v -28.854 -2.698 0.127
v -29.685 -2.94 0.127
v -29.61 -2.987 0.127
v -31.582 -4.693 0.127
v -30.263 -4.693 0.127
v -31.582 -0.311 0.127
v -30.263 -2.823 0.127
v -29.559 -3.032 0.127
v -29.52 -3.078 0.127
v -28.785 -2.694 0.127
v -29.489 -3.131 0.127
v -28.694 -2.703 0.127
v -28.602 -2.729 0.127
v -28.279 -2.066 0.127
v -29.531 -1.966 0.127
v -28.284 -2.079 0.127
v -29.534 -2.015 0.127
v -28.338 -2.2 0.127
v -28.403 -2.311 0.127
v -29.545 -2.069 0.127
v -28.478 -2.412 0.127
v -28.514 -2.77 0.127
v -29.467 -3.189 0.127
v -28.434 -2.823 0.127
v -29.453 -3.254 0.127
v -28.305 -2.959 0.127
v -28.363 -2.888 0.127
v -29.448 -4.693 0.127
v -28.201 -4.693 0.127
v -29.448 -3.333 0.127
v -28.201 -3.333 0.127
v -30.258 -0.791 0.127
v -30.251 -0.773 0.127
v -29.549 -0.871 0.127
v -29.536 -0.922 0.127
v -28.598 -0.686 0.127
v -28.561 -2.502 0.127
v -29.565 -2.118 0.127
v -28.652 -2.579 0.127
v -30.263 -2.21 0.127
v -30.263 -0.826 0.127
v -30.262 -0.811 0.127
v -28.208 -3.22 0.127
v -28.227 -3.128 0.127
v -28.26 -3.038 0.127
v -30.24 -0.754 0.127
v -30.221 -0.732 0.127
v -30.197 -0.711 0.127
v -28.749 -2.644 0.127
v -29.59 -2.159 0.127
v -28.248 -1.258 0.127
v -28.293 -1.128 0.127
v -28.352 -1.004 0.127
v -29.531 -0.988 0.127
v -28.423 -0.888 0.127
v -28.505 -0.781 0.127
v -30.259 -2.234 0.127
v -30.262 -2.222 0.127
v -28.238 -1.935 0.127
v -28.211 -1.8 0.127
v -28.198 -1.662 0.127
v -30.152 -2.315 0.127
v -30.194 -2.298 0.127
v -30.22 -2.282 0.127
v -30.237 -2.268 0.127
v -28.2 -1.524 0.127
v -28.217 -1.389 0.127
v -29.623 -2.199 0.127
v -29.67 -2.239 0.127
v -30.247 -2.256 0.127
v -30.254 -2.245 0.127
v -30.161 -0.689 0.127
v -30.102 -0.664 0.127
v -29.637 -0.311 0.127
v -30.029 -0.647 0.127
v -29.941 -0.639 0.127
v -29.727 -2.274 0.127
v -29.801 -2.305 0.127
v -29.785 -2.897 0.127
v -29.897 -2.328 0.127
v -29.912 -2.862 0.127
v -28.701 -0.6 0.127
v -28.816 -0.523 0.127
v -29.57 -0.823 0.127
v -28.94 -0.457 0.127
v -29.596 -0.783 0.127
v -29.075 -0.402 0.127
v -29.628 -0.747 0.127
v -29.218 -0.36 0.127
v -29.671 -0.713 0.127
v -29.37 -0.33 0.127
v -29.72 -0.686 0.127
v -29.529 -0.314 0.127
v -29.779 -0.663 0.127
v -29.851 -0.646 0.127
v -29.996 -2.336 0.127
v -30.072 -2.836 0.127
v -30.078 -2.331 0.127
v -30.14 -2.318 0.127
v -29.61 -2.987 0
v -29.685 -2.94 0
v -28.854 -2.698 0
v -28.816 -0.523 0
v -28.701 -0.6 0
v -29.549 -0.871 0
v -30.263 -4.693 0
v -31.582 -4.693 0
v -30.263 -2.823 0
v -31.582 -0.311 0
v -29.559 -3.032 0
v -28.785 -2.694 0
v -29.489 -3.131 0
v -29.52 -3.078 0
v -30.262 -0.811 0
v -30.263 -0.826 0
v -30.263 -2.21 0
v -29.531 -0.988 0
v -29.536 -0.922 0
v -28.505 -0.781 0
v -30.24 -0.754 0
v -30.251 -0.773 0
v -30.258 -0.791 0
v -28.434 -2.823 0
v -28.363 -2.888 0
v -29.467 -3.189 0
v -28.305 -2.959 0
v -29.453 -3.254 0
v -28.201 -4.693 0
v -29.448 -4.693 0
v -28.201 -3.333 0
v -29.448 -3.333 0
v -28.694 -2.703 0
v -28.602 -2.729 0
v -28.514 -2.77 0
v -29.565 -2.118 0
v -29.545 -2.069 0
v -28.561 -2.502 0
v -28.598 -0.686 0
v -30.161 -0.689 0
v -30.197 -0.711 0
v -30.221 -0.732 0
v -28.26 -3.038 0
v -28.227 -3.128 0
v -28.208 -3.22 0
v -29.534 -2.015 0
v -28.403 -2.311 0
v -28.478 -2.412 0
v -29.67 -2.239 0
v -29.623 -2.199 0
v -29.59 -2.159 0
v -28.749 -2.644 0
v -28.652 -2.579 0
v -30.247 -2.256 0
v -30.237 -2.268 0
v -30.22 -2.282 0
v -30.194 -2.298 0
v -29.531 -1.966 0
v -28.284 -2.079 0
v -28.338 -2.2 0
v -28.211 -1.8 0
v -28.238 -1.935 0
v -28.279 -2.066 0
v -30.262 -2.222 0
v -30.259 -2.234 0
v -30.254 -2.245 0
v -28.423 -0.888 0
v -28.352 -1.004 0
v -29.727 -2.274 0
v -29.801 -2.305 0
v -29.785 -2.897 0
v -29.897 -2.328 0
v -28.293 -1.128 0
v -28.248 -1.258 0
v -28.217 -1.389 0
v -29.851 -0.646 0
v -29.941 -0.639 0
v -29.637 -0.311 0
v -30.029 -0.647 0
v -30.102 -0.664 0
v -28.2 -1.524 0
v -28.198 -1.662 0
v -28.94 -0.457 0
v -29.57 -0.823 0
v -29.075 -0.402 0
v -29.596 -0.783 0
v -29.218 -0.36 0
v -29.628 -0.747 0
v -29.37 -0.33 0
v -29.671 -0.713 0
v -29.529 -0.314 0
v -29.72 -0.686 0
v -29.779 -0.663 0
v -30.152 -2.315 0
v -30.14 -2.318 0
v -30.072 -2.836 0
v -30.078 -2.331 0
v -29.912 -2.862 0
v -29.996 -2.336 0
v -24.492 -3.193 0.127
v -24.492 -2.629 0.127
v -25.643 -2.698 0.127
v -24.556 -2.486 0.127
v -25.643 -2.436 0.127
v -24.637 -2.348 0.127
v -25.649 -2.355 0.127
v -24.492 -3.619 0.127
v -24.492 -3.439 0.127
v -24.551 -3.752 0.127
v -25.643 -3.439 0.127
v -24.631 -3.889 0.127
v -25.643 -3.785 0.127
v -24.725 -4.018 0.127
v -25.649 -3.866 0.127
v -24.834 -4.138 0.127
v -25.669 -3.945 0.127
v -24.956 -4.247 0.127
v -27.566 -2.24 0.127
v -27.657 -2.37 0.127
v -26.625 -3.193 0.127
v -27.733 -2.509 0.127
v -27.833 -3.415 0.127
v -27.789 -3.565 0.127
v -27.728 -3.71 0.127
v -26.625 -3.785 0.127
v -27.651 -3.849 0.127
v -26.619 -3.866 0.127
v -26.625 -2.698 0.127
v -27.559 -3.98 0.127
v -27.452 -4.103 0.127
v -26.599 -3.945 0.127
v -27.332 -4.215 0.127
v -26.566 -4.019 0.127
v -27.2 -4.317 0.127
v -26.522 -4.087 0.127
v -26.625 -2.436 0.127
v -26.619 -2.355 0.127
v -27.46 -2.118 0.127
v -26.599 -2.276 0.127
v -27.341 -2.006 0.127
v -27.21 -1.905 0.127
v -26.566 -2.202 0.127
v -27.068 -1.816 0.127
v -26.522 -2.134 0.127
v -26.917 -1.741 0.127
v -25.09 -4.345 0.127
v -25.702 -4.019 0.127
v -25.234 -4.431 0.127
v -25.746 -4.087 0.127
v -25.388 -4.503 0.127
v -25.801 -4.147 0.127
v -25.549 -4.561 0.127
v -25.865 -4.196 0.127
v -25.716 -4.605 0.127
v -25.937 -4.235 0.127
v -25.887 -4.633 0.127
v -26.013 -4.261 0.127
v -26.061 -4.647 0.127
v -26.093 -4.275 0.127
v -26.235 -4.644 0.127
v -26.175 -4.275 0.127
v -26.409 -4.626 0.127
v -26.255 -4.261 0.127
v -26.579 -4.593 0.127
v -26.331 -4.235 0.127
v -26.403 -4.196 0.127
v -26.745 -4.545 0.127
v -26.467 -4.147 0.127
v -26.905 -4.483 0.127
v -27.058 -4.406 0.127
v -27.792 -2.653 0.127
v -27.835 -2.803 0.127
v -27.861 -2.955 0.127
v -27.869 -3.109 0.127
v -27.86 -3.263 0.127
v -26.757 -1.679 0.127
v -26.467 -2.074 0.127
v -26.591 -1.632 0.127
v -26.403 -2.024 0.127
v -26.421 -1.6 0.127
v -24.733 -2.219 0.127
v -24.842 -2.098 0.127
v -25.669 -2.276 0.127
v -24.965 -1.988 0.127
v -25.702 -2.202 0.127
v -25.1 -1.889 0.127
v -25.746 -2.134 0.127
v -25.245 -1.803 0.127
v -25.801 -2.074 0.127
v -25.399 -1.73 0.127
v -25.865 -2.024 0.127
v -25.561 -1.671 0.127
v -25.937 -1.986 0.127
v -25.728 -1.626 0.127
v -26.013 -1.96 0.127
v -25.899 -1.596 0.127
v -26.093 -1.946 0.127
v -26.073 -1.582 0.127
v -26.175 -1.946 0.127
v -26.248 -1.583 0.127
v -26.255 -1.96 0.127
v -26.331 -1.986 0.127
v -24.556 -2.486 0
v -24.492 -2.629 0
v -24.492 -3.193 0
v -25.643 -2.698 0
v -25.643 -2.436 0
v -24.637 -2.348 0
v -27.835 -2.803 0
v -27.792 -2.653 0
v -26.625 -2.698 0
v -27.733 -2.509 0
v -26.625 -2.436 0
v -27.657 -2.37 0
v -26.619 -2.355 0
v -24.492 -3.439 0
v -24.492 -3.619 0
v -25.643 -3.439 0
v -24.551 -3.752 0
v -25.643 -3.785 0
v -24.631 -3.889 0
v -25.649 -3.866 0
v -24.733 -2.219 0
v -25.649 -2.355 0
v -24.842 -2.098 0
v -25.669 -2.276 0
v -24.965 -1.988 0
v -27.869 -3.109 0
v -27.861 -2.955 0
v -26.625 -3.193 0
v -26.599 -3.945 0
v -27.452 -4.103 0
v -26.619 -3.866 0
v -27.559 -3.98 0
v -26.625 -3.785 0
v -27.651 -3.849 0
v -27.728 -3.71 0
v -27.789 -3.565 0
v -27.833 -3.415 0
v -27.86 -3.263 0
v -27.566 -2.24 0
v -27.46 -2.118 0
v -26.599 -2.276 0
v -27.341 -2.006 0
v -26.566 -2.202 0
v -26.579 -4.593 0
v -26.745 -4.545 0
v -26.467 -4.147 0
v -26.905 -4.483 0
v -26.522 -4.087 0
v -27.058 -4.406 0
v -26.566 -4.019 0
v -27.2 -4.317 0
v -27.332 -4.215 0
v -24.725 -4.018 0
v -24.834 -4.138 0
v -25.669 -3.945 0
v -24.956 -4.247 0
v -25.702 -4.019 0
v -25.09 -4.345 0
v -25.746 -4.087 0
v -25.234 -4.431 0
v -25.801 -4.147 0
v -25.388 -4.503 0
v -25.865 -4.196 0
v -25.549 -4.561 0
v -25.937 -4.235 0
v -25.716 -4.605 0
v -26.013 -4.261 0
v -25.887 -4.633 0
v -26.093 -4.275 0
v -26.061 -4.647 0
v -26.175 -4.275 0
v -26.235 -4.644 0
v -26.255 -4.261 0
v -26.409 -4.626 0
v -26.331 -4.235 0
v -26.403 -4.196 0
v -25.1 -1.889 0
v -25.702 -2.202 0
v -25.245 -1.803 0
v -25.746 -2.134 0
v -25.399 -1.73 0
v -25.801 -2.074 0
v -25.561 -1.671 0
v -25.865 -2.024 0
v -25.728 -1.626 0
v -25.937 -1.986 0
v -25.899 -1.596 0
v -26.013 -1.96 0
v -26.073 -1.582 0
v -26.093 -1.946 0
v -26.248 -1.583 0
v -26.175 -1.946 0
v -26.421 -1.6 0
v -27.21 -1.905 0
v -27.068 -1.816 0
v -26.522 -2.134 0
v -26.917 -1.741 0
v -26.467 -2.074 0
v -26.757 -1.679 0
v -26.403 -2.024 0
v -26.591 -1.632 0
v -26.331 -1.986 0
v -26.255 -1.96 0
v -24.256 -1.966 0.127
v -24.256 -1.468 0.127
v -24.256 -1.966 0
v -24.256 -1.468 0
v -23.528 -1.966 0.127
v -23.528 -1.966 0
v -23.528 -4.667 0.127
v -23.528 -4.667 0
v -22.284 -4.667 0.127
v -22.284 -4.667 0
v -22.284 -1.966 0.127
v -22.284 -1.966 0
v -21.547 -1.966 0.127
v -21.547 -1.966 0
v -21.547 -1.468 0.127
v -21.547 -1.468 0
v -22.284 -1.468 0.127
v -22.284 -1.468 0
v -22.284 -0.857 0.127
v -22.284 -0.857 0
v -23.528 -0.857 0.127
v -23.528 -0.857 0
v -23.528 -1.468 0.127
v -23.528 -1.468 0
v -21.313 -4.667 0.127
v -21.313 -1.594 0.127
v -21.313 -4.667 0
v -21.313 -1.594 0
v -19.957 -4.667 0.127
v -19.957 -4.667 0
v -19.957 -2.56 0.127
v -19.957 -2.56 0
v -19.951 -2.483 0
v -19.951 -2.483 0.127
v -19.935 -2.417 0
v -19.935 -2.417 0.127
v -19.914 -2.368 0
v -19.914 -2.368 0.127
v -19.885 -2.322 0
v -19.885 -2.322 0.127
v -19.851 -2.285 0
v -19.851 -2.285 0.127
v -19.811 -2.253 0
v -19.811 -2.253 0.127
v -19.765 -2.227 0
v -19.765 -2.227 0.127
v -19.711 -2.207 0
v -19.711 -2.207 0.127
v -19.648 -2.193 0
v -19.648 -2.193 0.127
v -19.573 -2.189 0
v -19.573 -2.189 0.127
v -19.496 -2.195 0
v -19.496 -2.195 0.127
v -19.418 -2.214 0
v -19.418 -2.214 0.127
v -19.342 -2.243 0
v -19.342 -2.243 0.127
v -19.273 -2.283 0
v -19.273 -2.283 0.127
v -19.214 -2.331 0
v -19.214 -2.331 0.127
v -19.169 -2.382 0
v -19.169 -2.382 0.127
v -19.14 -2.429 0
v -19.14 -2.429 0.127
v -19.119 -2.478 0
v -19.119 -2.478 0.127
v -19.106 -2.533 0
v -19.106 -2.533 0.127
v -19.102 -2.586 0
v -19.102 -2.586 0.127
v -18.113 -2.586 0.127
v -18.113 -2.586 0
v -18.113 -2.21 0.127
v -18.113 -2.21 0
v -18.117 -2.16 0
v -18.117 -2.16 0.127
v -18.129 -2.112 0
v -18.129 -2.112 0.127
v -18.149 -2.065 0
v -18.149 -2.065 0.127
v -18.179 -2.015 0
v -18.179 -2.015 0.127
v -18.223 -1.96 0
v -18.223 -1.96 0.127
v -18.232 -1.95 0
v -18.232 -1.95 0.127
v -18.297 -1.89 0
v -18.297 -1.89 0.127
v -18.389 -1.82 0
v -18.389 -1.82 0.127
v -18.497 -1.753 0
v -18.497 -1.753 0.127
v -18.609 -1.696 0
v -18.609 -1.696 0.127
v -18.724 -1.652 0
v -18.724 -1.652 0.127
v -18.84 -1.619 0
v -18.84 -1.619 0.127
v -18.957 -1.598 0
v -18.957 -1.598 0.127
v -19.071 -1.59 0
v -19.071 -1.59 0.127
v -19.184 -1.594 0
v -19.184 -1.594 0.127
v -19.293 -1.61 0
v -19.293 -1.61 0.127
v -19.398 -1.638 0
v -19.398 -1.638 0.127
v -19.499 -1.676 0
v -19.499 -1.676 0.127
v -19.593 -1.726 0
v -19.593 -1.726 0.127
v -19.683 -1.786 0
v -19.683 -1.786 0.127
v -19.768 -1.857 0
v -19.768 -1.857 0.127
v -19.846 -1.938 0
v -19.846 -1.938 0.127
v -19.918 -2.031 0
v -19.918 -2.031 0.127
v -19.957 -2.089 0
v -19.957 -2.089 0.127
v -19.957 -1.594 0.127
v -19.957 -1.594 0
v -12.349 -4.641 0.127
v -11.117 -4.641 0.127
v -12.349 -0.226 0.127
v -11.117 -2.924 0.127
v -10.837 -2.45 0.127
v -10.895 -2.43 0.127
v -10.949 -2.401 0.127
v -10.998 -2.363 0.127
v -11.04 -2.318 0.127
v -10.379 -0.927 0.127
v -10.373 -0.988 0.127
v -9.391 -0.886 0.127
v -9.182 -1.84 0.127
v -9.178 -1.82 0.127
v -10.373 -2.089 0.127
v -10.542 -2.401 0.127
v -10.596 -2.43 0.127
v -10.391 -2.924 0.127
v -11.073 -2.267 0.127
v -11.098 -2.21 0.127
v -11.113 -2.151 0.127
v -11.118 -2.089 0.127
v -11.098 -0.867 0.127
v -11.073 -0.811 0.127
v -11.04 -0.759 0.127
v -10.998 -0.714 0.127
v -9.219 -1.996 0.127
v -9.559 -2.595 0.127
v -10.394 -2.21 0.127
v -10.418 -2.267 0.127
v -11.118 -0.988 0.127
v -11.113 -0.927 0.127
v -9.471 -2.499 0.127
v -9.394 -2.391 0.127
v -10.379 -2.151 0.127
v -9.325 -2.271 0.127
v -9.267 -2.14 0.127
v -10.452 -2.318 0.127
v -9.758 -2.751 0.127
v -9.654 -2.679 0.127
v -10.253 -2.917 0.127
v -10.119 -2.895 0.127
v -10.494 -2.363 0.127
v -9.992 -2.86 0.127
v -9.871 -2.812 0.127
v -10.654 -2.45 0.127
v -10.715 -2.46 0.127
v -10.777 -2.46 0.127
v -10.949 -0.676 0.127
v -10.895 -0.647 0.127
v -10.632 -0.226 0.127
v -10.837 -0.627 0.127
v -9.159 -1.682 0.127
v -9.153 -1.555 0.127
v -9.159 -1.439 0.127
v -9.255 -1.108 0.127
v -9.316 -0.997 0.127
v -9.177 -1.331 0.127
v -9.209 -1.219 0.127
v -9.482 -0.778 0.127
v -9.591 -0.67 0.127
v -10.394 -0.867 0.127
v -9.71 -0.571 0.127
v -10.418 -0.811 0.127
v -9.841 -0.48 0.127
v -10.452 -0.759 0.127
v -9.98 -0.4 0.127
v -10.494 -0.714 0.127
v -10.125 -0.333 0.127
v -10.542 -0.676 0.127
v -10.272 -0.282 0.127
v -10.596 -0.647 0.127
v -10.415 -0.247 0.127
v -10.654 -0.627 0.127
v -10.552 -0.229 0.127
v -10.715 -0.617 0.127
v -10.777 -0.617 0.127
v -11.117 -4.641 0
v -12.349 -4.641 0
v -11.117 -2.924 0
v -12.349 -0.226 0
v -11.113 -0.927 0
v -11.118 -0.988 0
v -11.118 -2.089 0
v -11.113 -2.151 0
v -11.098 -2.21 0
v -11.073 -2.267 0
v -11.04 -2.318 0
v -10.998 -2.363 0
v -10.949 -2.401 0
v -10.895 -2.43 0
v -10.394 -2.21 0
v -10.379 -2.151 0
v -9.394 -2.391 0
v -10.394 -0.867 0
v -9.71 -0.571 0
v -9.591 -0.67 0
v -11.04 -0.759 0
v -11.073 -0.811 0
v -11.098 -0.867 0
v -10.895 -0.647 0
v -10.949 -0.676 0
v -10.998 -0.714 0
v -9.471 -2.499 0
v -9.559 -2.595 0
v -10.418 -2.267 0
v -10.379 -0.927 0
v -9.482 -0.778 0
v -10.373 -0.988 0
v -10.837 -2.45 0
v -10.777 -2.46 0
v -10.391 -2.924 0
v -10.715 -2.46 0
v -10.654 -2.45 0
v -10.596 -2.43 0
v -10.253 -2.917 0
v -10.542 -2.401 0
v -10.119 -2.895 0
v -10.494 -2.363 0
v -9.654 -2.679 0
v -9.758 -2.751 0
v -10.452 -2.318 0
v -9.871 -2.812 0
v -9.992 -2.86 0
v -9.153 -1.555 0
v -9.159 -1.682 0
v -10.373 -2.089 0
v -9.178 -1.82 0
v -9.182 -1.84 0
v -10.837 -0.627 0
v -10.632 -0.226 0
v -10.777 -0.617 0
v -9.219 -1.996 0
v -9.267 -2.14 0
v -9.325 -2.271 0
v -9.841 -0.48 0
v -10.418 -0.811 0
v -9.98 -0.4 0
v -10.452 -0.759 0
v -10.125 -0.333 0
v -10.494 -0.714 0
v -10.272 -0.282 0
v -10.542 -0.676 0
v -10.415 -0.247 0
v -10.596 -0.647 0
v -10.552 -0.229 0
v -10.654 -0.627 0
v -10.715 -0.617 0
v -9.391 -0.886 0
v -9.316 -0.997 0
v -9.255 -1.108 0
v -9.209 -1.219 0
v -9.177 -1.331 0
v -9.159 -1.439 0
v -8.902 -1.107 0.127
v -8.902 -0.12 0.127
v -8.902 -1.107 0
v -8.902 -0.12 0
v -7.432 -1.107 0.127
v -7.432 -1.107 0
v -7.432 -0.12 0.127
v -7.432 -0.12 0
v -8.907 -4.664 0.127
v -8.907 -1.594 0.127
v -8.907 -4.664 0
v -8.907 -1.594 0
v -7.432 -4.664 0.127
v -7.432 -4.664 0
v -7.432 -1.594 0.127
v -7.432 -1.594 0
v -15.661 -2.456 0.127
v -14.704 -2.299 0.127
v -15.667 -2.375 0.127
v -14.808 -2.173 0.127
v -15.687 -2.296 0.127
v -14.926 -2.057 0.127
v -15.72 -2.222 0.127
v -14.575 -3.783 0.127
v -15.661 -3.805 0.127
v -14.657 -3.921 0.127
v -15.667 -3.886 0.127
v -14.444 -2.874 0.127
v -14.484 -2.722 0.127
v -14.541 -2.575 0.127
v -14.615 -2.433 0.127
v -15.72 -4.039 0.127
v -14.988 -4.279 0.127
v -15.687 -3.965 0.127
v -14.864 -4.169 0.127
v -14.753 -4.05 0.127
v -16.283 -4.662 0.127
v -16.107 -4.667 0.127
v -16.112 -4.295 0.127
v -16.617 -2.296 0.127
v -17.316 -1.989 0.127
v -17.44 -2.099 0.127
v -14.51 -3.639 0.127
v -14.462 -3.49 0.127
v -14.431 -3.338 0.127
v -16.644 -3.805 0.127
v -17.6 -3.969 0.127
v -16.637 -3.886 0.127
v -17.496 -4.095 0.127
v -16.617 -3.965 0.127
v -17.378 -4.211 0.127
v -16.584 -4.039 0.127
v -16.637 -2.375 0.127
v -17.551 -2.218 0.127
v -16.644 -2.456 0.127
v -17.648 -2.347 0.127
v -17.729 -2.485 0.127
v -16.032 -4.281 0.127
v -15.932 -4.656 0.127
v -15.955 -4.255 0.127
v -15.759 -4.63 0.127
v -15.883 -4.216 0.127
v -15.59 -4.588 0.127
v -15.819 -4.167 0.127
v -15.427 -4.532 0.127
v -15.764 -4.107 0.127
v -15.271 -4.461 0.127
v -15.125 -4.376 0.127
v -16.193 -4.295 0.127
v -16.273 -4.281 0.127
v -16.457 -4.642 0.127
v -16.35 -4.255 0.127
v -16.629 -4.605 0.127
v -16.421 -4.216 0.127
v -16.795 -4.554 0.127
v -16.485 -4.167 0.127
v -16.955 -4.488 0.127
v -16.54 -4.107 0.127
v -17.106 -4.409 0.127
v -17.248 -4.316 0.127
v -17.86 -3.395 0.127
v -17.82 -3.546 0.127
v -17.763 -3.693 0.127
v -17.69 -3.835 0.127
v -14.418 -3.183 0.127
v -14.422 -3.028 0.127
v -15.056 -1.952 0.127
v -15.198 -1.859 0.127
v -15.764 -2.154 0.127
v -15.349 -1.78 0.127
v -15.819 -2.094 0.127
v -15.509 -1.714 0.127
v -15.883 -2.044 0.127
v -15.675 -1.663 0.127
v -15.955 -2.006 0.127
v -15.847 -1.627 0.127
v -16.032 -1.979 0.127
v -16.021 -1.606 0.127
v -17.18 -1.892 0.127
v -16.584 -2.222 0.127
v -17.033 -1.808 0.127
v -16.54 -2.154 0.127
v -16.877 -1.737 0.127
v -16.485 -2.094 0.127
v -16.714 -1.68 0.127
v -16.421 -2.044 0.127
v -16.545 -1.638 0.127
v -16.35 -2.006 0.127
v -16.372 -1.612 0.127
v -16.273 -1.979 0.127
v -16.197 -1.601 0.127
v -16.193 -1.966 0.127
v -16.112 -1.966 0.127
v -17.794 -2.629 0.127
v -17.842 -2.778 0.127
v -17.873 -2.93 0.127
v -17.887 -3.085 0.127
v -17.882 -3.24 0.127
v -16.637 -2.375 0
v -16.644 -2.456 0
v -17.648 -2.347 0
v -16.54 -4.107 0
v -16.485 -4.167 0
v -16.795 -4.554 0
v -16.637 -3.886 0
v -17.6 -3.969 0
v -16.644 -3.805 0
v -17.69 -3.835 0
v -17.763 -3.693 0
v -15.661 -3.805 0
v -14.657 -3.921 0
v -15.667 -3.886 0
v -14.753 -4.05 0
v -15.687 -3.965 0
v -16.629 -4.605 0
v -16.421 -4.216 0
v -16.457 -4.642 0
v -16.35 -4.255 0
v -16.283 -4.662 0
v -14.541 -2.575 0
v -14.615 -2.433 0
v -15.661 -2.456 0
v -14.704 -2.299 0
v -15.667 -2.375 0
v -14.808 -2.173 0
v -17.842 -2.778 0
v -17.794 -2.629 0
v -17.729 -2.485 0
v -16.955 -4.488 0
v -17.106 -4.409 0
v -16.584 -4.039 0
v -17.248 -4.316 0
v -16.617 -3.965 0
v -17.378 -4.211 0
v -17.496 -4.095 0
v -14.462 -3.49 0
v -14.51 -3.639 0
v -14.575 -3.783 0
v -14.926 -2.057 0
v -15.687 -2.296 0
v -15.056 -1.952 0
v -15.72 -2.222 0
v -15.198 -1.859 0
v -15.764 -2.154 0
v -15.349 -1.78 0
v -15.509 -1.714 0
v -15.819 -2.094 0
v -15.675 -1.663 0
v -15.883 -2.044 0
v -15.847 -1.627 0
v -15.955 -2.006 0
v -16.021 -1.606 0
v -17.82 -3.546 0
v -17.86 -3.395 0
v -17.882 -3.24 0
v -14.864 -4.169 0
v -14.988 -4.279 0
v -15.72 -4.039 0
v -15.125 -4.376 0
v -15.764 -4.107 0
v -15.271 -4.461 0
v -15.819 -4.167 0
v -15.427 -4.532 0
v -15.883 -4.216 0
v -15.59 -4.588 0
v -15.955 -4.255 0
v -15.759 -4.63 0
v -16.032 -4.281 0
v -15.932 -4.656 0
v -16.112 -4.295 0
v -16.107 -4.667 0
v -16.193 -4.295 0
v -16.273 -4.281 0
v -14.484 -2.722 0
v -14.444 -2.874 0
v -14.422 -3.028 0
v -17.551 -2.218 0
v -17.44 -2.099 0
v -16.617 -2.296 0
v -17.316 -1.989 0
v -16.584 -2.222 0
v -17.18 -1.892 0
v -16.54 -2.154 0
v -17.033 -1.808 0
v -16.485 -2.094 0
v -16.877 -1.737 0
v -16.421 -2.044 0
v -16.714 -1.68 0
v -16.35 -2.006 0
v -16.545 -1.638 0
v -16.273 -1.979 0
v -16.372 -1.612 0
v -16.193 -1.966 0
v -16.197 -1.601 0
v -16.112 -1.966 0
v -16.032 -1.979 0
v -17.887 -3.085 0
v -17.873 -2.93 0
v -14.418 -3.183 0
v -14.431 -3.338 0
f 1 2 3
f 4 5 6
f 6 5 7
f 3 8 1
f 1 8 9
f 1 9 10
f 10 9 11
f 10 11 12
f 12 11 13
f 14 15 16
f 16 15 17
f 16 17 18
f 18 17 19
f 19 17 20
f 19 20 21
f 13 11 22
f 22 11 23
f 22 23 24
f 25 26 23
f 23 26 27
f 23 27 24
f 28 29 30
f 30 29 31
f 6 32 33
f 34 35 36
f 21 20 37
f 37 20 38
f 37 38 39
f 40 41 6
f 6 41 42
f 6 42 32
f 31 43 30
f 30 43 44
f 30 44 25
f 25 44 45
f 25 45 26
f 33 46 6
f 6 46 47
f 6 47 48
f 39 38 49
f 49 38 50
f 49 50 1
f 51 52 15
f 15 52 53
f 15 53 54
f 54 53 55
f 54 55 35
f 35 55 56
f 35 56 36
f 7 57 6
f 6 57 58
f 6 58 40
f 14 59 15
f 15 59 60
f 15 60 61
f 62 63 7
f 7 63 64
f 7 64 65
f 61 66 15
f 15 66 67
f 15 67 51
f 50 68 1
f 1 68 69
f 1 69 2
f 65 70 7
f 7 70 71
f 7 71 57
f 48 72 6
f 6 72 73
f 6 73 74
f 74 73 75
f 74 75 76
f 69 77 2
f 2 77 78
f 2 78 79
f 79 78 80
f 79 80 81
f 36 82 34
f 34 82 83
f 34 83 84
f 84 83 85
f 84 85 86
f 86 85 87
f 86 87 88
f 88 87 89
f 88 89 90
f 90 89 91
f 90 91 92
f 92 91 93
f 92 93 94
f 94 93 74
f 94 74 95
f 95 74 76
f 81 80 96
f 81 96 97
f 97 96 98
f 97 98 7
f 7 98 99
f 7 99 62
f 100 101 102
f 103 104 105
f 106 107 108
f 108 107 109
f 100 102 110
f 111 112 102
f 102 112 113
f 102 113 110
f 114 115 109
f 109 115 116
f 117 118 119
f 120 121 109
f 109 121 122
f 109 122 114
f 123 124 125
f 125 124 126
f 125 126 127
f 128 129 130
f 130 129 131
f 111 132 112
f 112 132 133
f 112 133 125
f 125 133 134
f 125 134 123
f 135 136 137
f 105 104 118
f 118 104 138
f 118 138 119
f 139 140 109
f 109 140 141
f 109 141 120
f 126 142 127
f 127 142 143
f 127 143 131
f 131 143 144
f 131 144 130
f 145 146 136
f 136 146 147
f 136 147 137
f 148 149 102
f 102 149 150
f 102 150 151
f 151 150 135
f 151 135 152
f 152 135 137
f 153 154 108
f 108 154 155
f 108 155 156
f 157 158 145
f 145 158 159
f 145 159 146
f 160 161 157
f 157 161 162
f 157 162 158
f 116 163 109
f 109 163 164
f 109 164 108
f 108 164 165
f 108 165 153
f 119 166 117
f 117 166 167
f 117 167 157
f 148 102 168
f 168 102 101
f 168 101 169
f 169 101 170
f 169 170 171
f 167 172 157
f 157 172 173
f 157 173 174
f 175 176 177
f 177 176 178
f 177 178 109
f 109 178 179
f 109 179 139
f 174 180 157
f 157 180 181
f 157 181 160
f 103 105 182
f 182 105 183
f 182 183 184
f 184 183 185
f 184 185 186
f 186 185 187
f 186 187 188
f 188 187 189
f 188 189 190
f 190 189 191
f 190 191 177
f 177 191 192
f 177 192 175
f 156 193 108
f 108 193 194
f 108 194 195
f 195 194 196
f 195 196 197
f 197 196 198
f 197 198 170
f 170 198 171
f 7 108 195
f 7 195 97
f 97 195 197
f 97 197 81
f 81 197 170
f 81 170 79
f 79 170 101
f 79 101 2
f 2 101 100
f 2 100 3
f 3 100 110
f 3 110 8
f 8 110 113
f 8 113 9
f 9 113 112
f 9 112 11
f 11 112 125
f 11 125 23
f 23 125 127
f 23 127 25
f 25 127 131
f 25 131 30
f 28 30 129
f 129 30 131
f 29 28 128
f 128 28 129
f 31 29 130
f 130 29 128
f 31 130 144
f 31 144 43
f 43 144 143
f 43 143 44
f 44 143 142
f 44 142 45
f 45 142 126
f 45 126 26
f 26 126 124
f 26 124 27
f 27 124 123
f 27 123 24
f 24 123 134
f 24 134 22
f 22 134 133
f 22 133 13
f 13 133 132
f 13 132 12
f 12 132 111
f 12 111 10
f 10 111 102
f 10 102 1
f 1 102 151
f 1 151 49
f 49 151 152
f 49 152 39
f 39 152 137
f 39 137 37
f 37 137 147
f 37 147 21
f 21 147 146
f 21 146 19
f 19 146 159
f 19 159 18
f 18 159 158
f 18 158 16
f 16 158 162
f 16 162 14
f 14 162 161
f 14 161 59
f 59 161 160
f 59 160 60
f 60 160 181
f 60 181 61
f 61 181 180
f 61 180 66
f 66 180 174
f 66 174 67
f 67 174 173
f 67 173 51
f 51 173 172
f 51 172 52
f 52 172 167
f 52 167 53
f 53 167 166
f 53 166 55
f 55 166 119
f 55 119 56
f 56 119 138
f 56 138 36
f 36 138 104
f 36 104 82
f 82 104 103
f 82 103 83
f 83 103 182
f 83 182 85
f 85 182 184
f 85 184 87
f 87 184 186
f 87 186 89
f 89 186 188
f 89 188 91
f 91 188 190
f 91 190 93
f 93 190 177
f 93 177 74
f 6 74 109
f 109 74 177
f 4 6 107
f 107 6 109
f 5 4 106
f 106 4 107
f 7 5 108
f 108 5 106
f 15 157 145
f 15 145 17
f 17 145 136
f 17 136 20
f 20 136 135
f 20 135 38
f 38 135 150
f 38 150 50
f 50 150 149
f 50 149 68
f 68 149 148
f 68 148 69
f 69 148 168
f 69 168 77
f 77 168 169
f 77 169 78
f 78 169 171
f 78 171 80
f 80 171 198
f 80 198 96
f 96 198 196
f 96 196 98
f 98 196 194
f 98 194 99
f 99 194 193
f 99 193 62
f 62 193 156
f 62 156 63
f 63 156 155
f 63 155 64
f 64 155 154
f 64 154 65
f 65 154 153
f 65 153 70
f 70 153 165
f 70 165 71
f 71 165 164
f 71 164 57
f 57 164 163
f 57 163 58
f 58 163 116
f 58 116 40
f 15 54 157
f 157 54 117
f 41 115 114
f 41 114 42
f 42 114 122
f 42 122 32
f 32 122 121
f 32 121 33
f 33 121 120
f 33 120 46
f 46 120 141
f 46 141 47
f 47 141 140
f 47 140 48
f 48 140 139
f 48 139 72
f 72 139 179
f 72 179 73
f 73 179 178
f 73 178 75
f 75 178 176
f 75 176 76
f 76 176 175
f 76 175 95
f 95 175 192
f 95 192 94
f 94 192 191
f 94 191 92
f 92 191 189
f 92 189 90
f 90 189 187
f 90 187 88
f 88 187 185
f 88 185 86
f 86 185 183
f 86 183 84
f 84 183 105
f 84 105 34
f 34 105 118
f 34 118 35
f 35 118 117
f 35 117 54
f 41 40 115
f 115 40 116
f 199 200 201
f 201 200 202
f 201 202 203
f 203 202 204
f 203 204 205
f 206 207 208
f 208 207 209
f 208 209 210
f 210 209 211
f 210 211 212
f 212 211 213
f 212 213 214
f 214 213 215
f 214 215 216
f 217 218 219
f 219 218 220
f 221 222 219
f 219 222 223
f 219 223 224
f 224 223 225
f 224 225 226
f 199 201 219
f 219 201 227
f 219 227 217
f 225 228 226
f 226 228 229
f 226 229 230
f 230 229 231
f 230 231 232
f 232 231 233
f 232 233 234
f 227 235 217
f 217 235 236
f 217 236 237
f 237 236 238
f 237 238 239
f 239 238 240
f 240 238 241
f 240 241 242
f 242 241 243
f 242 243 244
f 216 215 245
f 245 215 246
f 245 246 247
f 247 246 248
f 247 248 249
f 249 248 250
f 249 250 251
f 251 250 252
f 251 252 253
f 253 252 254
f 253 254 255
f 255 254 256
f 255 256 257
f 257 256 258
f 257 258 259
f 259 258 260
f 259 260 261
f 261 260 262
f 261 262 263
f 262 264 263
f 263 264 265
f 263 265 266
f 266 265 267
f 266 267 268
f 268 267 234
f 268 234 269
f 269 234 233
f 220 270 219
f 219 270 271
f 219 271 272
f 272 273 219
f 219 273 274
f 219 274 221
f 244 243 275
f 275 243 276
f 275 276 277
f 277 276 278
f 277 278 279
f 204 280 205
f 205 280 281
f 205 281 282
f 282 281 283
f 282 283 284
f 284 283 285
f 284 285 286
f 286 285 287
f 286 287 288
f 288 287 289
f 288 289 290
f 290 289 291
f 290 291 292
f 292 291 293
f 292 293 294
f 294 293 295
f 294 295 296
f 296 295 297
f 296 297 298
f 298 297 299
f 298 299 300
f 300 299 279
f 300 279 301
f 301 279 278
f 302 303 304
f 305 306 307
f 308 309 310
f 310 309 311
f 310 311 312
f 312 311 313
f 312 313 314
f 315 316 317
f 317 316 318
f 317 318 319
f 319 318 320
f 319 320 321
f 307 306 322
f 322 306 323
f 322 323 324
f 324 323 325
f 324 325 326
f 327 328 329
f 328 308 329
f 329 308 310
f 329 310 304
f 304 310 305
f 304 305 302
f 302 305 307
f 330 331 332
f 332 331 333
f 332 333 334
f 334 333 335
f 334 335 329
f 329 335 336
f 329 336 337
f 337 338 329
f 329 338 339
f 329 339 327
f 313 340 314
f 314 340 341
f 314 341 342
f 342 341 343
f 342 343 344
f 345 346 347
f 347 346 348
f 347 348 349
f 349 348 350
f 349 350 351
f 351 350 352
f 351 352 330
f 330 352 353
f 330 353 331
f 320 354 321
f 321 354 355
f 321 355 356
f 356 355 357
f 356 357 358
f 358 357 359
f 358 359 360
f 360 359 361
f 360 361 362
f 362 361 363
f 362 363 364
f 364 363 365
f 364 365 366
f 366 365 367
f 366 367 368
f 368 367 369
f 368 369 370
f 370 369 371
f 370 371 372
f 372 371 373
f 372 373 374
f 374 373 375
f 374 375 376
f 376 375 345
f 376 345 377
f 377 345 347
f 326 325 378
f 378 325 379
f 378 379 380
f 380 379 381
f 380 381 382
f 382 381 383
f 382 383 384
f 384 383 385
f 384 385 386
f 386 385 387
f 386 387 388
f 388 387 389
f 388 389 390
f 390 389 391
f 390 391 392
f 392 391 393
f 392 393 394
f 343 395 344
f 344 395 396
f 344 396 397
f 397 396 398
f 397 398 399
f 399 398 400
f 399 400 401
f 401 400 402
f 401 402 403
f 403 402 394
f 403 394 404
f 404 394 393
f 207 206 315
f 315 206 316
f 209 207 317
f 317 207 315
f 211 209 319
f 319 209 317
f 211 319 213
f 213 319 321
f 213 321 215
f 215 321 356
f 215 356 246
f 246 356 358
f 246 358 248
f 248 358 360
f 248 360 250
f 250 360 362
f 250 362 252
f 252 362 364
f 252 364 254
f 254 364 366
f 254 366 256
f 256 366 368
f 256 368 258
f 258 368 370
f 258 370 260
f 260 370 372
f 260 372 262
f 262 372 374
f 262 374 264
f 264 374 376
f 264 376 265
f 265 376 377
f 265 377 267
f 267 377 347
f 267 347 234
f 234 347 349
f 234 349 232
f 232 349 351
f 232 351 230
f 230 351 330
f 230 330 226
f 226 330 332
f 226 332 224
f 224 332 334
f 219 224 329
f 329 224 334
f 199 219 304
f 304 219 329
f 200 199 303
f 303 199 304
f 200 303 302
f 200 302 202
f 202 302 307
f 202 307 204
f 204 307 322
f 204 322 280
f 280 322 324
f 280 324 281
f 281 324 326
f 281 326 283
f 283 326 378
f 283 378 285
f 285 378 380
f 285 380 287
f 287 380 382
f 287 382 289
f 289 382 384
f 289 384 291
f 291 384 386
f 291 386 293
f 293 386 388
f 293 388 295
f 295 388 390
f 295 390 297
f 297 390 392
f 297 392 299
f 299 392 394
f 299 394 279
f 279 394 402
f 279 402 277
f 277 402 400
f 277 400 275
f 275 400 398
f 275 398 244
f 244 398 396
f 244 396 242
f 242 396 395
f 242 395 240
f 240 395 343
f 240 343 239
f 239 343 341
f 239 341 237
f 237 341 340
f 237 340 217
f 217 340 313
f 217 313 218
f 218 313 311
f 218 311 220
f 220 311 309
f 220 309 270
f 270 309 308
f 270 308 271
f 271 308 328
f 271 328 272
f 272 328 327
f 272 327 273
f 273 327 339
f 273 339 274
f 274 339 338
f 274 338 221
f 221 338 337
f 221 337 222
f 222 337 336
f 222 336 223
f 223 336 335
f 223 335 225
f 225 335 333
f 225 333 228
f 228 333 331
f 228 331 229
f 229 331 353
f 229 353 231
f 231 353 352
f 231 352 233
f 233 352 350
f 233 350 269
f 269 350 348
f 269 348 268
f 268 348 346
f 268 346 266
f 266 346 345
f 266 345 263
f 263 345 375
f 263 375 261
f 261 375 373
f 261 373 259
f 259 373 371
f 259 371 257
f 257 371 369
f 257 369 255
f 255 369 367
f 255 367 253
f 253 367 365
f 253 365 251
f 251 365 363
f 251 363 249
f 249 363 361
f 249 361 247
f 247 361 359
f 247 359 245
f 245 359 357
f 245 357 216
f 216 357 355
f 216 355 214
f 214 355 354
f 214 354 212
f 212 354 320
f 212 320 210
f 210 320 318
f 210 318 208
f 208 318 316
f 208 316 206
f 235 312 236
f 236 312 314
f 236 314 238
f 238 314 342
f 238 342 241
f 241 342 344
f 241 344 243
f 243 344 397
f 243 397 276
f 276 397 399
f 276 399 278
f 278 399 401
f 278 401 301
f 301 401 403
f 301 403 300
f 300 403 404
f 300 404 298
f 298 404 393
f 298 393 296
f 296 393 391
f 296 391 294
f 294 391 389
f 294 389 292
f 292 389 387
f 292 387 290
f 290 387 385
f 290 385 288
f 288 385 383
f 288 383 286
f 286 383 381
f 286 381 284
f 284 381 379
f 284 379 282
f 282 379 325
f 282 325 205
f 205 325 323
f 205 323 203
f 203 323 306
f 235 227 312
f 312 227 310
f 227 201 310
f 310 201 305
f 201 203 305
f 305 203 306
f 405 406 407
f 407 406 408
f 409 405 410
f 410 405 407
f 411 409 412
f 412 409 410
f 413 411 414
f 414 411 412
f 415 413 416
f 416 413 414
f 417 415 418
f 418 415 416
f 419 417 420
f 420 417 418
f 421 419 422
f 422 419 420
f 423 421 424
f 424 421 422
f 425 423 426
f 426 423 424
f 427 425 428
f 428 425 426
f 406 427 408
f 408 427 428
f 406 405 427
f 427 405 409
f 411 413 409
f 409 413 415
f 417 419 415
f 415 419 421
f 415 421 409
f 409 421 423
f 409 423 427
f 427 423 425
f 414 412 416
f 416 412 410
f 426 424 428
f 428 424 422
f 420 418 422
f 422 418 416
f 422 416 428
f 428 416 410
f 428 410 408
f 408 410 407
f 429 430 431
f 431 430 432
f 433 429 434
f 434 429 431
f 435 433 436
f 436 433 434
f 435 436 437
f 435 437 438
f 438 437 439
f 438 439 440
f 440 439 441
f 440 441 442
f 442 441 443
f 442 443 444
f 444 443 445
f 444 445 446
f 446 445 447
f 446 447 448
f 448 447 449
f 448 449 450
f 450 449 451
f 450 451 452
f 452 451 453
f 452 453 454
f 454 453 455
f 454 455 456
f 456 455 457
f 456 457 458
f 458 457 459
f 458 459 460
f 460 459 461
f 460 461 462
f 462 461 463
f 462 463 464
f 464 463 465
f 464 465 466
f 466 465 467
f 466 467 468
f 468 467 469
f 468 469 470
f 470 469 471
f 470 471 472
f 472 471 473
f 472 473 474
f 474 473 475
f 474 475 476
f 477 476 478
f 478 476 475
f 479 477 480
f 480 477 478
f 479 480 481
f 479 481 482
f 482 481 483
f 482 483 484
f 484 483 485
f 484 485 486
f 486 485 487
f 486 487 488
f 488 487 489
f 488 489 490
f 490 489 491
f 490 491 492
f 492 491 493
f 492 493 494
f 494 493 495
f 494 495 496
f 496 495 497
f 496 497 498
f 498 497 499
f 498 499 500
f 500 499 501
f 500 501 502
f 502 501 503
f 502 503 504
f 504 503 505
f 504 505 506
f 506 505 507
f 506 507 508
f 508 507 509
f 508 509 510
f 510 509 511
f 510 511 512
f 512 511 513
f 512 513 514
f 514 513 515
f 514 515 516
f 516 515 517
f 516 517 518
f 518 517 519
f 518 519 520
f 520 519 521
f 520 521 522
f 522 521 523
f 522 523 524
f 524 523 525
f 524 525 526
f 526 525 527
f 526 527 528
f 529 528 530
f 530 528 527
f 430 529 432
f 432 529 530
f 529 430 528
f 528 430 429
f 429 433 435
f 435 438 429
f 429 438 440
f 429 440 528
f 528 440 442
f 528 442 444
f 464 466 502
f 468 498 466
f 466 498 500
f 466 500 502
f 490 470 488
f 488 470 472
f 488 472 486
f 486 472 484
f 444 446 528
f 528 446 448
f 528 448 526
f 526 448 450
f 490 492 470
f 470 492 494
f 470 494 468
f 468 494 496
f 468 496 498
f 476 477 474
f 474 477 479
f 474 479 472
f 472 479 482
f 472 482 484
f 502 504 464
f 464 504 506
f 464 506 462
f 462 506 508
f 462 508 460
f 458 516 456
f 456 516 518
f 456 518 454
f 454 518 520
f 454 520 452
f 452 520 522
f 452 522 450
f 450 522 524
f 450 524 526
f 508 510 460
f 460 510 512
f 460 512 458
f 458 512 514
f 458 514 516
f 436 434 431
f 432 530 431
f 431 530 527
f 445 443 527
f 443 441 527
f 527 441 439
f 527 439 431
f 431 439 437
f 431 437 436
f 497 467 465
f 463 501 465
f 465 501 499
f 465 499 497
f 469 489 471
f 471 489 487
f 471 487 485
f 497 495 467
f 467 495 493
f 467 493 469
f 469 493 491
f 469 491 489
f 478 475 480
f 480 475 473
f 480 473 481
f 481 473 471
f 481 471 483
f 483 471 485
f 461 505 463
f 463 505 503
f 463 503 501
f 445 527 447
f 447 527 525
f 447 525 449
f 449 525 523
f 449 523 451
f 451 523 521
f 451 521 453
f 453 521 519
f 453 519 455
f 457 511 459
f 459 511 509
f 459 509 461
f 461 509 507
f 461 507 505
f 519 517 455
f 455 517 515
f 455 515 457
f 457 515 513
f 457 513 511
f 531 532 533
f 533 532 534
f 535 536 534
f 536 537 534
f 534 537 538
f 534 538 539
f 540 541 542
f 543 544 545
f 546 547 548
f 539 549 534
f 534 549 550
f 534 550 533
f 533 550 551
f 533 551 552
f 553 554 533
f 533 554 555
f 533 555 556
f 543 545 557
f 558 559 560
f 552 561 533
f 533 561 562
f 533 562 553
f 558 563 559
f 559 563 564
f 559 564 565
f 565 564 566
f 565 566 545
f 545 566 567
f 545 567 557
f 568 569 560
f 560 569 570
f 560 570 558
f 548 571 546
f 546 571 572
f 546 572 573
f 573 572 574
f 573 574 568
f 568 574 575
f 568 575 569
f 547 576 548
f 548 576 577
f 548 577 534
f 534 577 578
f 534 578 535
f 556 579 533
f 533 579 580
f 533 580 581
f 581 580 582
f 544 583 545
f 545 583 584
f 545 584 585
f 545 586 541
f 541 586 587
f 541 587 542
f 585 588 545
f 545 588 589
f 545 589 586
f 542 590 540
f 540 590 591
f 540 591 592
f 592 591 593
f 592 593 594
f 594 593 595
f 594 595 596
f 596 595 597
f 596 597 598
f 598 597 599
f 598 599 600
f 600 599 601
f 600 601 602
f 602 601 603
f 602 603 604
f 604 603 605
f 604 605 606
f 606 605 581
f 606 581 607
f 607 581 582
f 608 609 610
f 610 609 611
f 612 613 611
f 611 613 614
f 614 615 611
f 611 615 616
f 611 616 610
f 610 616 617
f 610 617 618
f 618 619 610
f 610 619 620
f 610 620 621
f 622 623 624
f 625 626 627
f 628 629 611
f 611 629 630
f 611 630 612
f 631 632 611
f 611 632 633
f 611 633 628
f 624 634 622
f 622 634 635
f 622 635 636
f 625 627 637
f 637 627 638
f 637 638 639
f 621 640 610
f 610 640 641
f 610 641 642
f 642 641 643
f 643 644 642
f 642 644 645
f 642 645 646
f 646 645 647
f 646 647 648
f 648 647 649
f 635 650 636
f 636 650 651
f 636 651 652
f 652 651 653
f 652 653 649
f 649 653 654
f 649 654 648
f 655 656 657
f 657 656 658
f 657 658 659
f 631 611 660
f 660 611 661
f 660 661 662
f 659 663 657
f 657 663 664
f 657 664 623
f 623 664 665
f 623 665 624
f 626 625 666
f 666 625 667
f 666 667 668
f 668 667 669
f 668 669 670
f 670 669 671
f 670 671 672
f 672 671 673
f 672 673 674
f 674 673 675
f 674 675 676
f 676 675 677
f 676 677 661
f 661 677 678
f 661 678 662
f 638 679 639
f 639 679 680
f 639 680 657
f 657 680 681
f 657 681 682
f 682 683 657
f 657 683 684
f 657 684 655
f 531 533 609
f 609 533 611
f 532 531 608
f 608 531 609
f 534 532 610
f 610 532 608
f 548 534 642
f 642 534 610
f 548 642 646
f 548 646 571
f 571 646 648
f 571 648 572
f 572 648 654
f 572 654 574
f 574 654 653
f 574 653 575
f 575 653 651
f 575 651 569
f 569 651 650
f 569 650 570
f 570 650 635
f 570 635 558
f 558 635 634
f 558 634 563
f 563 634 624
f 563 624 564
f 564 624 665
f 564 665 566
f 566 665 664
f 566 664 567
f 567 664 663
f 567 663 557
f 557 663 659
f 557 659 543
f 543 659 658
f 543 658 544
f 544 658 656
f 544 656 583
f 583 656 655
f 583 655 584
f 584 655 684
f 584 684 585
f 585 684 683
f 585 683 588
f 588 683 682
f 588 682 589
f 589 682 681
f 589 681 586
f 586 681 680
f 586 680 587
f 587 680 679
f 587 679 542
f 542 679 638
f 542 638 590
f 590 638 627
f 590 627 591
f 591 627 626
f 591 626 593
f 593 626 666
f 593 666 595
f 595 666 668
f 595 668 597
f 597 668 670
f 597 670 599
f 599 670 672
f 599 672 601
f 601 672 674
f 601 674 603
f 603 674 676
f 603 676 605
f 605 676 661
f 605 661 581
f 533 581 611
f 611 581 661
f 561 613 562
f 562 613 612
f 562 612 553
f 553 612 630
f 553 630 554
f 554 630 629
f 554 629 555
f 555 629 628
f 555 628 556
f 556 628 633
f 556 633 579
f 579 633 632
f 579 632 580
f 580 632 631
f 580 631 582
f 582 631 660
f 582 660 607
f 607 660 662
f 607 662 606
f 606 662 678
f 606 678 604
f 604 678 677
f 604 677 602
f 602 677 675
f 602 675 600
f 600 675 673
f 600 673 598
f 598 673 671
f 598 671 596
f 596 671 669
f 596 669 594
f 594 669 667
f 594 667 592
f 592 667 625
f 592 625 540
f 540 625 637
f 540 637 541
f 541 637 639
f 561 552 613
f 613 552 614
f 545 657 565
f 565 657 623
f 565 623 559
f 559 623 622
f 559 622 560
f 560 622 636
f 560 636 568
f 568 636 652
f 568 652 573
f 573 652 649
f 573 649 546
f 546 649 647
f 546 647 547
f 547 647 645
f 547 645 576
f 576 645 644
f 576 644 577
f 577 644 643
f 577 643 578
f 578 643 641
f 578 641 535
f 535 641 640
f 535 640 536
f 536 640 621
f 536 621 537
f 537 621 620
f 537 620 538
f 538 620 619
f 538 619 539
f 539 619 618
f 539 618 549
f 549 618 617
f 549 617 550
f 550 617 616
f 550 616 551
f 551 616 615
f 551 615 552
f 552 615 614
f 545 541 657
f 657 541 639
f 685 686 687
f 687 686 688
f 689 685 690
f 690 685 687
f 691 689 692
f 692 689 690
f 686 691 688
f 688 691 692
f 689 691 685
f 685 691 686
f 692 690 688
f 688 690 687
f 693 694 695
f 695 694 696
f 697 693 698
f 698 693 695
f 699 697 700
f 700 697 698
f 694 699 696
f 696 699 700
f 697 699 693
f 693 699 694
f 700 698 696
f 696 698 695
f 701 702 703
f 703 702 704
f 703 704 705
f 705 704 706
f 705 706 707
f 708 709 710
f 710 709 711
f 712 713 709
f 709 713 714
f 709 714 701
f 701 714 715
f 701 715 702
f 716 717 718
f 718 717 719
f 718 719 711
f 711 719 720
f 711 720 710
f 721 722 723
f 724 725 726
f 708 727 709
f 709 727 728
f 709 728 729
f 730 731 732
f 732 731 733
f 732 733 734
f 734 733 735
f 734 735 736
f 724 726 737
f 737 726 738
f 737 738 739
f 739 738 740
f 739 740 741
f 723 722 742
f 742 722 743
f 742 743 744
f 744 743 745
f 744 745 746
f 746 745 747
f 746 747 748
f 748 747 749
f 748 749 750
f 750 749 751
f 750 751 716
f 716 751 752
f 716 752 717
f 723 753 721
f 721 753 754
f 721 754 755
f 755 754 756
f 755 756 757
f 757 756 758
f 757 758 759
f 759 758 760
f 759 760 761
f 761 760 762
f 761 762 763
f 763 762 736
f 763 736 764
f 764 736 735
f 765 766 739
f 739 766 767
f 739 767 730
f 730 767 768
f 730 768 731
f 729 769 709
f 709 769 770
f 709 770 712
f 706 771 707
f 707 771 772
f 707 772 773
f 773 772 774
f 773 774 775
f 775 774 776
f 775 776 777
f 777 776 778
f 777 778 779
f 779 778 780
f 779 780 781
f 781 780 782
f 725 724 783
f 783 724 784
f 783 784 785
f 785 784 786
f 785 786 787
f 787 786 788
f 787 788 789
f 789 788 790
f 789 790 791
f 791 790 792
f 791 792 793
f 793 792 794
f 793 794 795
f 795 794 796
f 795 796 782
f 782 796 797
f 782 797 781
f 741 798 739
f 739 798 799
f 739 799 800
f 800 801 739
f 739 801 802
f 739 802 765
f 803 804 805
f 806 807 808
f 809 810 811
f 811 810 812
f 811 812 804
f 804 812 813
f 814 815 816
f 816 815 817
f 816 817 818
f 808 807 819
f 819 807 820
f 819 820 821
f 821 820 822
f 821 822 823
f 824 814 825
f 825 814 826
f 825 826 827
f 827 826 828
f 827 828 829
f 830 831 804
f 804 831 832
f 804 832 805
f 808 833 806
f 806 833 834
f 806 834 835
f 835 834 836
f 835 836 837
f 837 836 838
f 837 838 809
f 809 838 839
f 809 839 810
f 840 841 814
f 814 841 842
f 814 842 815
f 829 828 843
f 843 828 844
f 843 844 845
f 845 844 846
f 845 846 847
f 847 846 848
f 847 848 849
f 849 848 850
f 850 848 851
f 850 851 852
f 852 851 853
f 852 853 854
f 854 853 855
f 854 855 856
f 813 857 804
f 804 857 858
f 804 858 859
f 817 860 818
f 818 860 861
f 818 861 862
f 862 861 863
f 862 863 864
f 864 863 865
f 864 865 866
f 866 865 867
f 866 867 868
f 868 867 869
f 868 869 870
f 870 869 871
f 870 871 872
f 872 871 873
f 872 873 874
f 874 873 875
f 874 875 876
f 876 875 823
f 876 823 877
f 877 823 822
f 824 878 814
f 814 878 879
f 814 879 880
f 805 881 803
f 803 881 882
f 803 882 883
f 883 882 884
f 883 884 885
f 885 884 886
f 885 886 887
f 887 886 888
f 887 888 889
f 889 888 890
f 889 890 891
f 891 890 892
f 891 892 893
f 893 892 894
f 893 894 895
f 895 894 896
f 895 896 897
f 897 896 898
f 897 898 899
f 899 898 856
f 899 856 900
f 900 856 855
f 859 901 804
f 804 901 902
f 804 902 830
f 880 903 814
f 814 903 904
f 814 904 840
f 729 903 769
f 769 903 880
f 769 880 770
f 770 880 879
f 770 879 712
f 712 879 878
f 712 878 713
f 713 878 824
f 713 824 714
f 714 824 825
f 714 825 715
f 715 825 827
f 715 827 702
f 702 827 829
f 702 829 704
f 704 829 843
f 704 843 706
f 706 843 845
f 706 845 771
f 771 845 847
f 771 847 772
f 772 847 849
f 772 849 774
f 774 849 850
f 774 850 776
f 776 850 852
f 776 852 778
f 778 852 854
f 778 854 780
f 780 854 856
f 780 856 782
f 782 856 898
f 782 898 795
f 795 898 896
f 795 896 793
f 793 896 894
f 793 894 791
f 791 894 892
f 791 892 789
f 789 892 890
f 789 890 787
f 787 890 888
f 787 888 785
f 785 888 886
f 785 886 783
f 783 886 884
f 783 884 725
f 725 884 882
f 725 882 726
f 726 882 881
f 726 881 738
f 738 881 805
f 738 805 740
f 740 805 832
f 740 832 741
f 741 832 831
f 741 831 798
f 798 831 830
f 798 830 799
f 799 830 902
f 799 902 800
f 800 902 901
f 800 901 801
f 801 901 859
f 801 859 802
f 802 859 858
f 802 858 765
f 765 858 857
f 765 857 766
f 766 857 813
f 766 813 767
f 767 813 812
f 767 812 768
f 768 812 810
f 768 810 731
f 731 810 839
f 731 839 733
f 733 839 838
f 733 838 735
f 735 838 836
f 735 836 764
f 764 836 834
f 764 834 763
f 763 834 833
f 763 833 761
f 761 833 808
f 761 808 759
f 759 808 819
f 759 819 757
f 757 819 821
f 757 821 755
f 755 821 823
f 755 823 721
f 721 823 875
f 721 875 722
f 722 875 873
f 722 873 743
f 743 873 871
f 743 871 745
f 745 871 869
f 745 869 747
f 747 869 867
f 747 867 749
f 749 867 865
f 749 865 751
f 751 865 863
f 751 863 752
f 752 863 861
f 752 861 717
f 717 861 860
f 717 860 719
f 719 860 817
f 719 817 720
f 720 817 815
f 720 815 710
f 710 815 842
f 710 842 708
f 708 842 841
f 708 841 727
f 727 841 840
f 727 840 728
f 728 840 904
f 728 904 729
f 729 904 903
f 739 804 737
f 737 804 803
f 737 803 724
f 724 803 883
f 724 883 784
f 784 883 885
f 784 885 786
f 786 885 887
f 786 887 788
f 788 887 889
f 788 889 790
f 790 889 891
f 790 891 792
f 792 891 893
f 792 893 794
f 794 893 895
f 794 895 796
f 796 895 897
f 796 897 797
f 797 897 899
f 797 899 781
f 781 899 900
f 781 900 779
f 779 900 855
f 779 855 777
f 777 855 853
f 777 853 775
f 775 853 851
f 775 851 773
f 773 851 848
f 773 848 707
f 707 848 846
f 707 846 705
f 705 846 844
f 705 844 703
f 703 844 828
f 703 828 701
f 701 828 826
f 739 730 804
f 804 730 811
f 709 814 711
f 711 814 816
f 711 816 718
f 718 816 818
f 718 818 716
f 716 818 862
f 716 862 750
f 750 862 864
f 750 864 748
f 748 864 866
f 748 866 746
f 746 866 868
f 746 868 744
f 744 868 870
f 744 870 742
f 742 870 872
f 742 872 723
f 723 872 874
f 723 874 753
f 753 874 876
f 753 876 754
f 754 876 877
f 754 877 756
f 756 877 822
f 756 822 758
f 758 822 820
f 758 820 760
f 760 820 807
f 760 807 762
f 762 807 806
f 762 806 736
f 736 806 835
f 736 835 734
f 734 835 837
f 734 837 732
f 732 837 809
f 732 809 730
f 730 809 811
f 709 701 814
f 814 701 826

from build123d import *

# Parameters (mm, degrees)
SKETCH1_RX            = 1.735148958
SKETCH1_RY            = 1.533180203
BOSS_EXTRUDE1_DEPTH   = 0.127
BOSS_EXTRUDE1_2_DEPTH = 0.127
BOSS_EXTRUDE1_3_DEPTH = 0.127
BOSS_EXTRUDE1_4_DEPTH = 0.127
BOSS_EXTRUDE1_5_DEPTH = 0.127
SKETCH1_W             = 1.469882779
SKETCH1_H             = 0.986305708
BOSS_EXTRUDE1_6_DEPTH = 0.127
SKETCH1_W_2           = 1.474670671
SKETCH1_H_2           = 3.070246412
BOSS_EXTRUDE1_7_DEPTH = 0.127
BOSS_EXTRUDE1_8_DEPTH = 0.127


with BuildPart() as part:
    # Sketch1 → Boss-Extrude1 (new body)
    with BuildSketch(Plane.XY):
        with Locations(Location((-16.152147606, -3.134092867), (0, 0, 178.374756608))):
            Ellipse(SKETCH1_RX, SKETCH1_RY)
        with BuildLine():
            Line((-15.660776991, -2.455740515), (-15.660776991, -3.805039669))
            ThreePointArc((-15.660776991, -3.805039669), (-16.152147606, -4.296410283), (-16.64351822, -3.805039669))
            Line((-16.64351822, -3.805039669), (-16.64351822, -2.455740515))
            ThreePointArc((-16.64351822, -2.455740515), (-16.152147606, -1.9643699), (-15.660776991, -2.455740515))
        make_face(mode=Mode.SUBTRACT)
    extrude(amount=BOSS_EXTRUDE1_DEPTH)


with BuildPart() as body_2:
    # Sketch1 → Boss-Extrude1 2 (new body)
    with BuildSketch(Plane.XY):
        with BuildLine():
            Line((-30.263267279, -2.822856992), (-30.263267279, -4.692781704))
            Line((-30.263267279, -4.692781704), (-31.582122128, -4.692781704))
            Line((-31.582122128, -4.692781704), (-31.582122128, -0.310735913))
            Line((-31.582122128, -0.310735913), (-29.636644902, -0.310735913))
            add(Edge.make_bspline(
                [(-29.636644902, -0.310735913), (-29.136739082, -0.310735913), (-28.472069294, -0.610746925), (-28.042557497, -1.741092947), (-28.404859995, -2.503287935), (-28.854379149, -2.697710409)],
                knots=[0, 0, 0, 0, 0.382534351, 0.585860558, 1, 1, 1, 1], degree=3))
            add(Edge.make_bspline(
                [(-28.854379149, -2.697710409), (-28.640120437, -2.670744605), (-28.284715318, -2.86319074), (-28.201147143, -3.18867445), (-28.201147143, -3.332836459)],
                knots=[0, 0, 0, 0, 0.617780194, 1, 1, 1, 1], degree=3))
            Line((-28.201147143, -3.332836459), (-28.201147143, -4.692781704))
            Line((-28.201147143, -4.692781704), (-29.447763618, -4.692781704))
            Line((-29.447763618, -4.692781704), (-29.447763618, -3.332836459))
            add(Edge.make_bspline(
                [(-30.263267279, -2.822856992), (-29.648018977, -2.844256705), (-29.447763618, -3.039979499), (-29.447763618, -3.332836459)],
                knots=[0, 0, 0, 0, 1, 1, 1, 1], degree=3))
        make_face()
        with BuildLine():
            Line((-30.263267279, -2.209609755), (-30.263267279, -0.826360576))
            add(Edge.make_bspline(
                [(-30.263267279, -0.826360576), (-30.263267279, -0.580516398), (-29.530822817, -0.52375832), (-29.530822817, -0.987984864)],
                knots=[0, 0, 0, 0, 1, 1, 1, 1], degree=3))
            Line((-29.530822817, -0.987984864), (-29.530822817, -1.966364271))
            add(Edge.make_bspline(
                [(-30.263267279, -2.209609755), (-30.263267279, -2.402906352), (-29.530822817, -2.412391041), (-29.530822817, -1.966364271)],
                knots=[0, 0, 0, 0, 1, 1, 1, 1], degree=3))
        make_face(mode=Mode.SUBTRACT)
    extrude(amount=BOSS_EXTRUDE1_2_DEPTH)


with BuildPart() as body_3:
    # Sketch1 → Boss-Extrude1 3 (new body)
    with BuildSketch(Plane.XY):
        Polygon((-23.527701666, -1.966364271), (-23.527701666, -4.666656297), (-22.284311384, -4.666656297), (-22.284311384, -1.966364271), (-21.547487513, -1.966364271), (-21.547487513, -1.468170858), (-22.284311384, -1.468170858), (-22.284311384, -0.856941966), (-23.527701666, -0.856941966), (-23.527701666, -1.468170858), (-24.256152538, -1.468170858), (-24.256152538, -1.966364271), align=None)
    extrude(amount=BOSS_EXTRUDE1_3_DEPTH)


with BuildPart() as body_4:
    # Sketch1 → Boss-Extrude1 4 (new body)
    with BuildSketch(Plane.XY):
        with BuildLine():
            Line((-21.313043555, -1.593765836), (-19.956617793, -1.593765836))
            Line((-19.956617793, -1.593765836), (-19.956617793, -2.089398335))
            add(Edge.make_bspline(
                [(-19.956617793, -2.089398335), (-19.579903191, -1.483585225), (-18.697968223, -1.459217489), (-18.113054457, -2.055386984), (-18.113054457, -2.209609755)],
                knots=[0, 0, 0, 0, 0.802411557, 1, 1, 1, 1], degree=3))
            Line((-18.113054457, -2.209609755), (-18.113054457, -2.586287503))
            Line((-18.113054457, -2.586287503), (-19.10183212, -2.586287503))
            add(Edge.make_bspline(
                [(-19.956617793, -2.559515195), (-19.956617793, -1.992315617), (-19.099507004, -2.135775384), (-19.10183212, -2.586287503)],
                knots=[0, 0, 0, 0, 1, 1, 1, 1], degree=3))
            Line((-19.956617793, -2.559515195), (-19.956617793, -4.666656297))
            Line((-19.956617793, -4.666656297), (-21.313043555, -4.666656297))
            Line((-21.313043555, -4.666656297), (-21.313043555, -1.593765836))
        make_face()
    extrude(amount=BOSS_EXTRUDE1_4_DEPTH)


with BuildPart() as body_5:
    # Sketch1 → Boss-Extrude1 5 (new body)
    with BuildSketch(Plane.XY):
        with BuildLine():
            Line((-12.349477508, -0.225919474), (-10.632213364, -0.225919474))
            add(Edge.make_bspline(
                [(-10.632213364, -0.225919474), (-10.034137162, -0.225919474), (-9.083331902, -0.880571914), (-9.225226195, -2.511762322), (-9.832263332, -2.923751991), (-10.391318264, -2.923751991)],
                knots=[0, 0, 0, 0, 0.403060772, 0.503060772, 1, 1, 1, 1], degree=3))
            Line((-10.391318264, -2.923751991), (-11.117211162, -2.923751991))
            Line((-11.117211162, -2.923751991), (-11.117211162, -4.640730661))
            Line((-11.117211162, -4.640730661), (-12.349477508, -4.640730661))
            Line((-12.349477508, -4.640730661), (-12.349477508, -0.225919474))
        make_face()
        with BuildLine():
            Line((-10.373486814, -0.987984864), (-10.373486814, -2.089398335))
            ThreePointArc((-10.373486814, -2.089398335), (-10.745761872, -2.461673393), (-11.118036931, -2.089398335))
            Line((-11.118036931, -2.089398335), (-11.118036931, -0.987984864))
            ThreePointArc((-11.118036931, -0.987984864), (-10.745761872, -0.615709806), (-10.373486814, -0.987984864))
        make_face(mode=Mode.SUBTRACT)
    extrude(amount=BOSS_EXTRUDE1_5_DEPTH)


with BuildPart() as body_6:
    # Sketch1 → Boss-Extrude1 6 (new body)
    with BuildSketch(Plane.XY):
        with Locations((-8.16725403, -0.613455794)):
            Rectangle(SKETCH1_W, SKETCH1_H)
    extrude(amount=BOSS_EXTRUDE1_6_DEPTH)


with BuildPart() as body_7:
    # Sketch1 → Boss-Extrude1 7 (new body)
    with BuildSketch(Plane.XY):
        with Locations((-8.169647976, -3.128889042)):
            Rectangle(SKETCH1_W_2, SKETCH1_H_2)
    extrude(amount=BOSS_EXTRUDE1_7_DEPTH)


with BuildPart() as body_8:
    # Sketch1 → Boss-Extrude1 8 (new body)
    with BuildSketch(Plane.XY):
        with BuildLine():
            Line((-24.491912245, -2.629363052), (-24.491912245, -3.193395132))
            Line((-24.491912245, -3.193395132), (-26.625366229, -3.193395132))
            Line((-26.625366229, -3.193395132), (-26.625366229, -3.785141847))
            ThreePointArc((-26.625366229, -3.785141847), (-26.133995615, -4.276512462), (-25.642625, -3.785141847))
            Line((-25.642625, -3.785141847), (-25.642625, -3.438942656))
            Line((-25.642625, -3.438942656), (-24.491912245, -3.438942656))
            Line((-24.491912245, -3.438942656), (-24.491912245, -3.619444468))
            add(Edge.make_bspline(
                [(-24.491912245, -2.629363052), (-25.255067925, -0.64749638), (-27.160613393, -1.871731189), (-29.066158861, -3.095965998), (-27.160613393, -4.343894085), (-25.255067925, -5.591822172), (-24.491912245, -3.619444468)],
                knots=[0.353811549, 0.353811549, 0.353811549, 2.229042672, 2.229042672, 4.104273795, 4.104273795, 5.979504918, 5.979504918, 5.979504918], degree=2, weights=[1, 0.591711919, 1, 0.591711919, 1, 0.591711919, 1]))
        make_face()
        with BuildLine():
            Line((-25.642625, -2.435842693), (-25.642625, -2.697710409))
            Line((-25.642625, -2.697710409), (-26.625366229, -2.697710409))
            Line((-26.625366229, -2.697710409), (-26.625366229, -2.435842693))
            ThreePointArc((-26.625366229, -2.435842693), (-26.133995615, -1.944472079), (-25.642625, -2.435842693))
        make_face(mode=Mode.SUBTRACT)
    extrude(amount=BOSS_EXTRUDE1_8_DEPTH)


solid = Compound([part.part, body_2.part, body_3.part, body_4.part, body_5.part, body_6.part, body_7.part, body_8.part])
